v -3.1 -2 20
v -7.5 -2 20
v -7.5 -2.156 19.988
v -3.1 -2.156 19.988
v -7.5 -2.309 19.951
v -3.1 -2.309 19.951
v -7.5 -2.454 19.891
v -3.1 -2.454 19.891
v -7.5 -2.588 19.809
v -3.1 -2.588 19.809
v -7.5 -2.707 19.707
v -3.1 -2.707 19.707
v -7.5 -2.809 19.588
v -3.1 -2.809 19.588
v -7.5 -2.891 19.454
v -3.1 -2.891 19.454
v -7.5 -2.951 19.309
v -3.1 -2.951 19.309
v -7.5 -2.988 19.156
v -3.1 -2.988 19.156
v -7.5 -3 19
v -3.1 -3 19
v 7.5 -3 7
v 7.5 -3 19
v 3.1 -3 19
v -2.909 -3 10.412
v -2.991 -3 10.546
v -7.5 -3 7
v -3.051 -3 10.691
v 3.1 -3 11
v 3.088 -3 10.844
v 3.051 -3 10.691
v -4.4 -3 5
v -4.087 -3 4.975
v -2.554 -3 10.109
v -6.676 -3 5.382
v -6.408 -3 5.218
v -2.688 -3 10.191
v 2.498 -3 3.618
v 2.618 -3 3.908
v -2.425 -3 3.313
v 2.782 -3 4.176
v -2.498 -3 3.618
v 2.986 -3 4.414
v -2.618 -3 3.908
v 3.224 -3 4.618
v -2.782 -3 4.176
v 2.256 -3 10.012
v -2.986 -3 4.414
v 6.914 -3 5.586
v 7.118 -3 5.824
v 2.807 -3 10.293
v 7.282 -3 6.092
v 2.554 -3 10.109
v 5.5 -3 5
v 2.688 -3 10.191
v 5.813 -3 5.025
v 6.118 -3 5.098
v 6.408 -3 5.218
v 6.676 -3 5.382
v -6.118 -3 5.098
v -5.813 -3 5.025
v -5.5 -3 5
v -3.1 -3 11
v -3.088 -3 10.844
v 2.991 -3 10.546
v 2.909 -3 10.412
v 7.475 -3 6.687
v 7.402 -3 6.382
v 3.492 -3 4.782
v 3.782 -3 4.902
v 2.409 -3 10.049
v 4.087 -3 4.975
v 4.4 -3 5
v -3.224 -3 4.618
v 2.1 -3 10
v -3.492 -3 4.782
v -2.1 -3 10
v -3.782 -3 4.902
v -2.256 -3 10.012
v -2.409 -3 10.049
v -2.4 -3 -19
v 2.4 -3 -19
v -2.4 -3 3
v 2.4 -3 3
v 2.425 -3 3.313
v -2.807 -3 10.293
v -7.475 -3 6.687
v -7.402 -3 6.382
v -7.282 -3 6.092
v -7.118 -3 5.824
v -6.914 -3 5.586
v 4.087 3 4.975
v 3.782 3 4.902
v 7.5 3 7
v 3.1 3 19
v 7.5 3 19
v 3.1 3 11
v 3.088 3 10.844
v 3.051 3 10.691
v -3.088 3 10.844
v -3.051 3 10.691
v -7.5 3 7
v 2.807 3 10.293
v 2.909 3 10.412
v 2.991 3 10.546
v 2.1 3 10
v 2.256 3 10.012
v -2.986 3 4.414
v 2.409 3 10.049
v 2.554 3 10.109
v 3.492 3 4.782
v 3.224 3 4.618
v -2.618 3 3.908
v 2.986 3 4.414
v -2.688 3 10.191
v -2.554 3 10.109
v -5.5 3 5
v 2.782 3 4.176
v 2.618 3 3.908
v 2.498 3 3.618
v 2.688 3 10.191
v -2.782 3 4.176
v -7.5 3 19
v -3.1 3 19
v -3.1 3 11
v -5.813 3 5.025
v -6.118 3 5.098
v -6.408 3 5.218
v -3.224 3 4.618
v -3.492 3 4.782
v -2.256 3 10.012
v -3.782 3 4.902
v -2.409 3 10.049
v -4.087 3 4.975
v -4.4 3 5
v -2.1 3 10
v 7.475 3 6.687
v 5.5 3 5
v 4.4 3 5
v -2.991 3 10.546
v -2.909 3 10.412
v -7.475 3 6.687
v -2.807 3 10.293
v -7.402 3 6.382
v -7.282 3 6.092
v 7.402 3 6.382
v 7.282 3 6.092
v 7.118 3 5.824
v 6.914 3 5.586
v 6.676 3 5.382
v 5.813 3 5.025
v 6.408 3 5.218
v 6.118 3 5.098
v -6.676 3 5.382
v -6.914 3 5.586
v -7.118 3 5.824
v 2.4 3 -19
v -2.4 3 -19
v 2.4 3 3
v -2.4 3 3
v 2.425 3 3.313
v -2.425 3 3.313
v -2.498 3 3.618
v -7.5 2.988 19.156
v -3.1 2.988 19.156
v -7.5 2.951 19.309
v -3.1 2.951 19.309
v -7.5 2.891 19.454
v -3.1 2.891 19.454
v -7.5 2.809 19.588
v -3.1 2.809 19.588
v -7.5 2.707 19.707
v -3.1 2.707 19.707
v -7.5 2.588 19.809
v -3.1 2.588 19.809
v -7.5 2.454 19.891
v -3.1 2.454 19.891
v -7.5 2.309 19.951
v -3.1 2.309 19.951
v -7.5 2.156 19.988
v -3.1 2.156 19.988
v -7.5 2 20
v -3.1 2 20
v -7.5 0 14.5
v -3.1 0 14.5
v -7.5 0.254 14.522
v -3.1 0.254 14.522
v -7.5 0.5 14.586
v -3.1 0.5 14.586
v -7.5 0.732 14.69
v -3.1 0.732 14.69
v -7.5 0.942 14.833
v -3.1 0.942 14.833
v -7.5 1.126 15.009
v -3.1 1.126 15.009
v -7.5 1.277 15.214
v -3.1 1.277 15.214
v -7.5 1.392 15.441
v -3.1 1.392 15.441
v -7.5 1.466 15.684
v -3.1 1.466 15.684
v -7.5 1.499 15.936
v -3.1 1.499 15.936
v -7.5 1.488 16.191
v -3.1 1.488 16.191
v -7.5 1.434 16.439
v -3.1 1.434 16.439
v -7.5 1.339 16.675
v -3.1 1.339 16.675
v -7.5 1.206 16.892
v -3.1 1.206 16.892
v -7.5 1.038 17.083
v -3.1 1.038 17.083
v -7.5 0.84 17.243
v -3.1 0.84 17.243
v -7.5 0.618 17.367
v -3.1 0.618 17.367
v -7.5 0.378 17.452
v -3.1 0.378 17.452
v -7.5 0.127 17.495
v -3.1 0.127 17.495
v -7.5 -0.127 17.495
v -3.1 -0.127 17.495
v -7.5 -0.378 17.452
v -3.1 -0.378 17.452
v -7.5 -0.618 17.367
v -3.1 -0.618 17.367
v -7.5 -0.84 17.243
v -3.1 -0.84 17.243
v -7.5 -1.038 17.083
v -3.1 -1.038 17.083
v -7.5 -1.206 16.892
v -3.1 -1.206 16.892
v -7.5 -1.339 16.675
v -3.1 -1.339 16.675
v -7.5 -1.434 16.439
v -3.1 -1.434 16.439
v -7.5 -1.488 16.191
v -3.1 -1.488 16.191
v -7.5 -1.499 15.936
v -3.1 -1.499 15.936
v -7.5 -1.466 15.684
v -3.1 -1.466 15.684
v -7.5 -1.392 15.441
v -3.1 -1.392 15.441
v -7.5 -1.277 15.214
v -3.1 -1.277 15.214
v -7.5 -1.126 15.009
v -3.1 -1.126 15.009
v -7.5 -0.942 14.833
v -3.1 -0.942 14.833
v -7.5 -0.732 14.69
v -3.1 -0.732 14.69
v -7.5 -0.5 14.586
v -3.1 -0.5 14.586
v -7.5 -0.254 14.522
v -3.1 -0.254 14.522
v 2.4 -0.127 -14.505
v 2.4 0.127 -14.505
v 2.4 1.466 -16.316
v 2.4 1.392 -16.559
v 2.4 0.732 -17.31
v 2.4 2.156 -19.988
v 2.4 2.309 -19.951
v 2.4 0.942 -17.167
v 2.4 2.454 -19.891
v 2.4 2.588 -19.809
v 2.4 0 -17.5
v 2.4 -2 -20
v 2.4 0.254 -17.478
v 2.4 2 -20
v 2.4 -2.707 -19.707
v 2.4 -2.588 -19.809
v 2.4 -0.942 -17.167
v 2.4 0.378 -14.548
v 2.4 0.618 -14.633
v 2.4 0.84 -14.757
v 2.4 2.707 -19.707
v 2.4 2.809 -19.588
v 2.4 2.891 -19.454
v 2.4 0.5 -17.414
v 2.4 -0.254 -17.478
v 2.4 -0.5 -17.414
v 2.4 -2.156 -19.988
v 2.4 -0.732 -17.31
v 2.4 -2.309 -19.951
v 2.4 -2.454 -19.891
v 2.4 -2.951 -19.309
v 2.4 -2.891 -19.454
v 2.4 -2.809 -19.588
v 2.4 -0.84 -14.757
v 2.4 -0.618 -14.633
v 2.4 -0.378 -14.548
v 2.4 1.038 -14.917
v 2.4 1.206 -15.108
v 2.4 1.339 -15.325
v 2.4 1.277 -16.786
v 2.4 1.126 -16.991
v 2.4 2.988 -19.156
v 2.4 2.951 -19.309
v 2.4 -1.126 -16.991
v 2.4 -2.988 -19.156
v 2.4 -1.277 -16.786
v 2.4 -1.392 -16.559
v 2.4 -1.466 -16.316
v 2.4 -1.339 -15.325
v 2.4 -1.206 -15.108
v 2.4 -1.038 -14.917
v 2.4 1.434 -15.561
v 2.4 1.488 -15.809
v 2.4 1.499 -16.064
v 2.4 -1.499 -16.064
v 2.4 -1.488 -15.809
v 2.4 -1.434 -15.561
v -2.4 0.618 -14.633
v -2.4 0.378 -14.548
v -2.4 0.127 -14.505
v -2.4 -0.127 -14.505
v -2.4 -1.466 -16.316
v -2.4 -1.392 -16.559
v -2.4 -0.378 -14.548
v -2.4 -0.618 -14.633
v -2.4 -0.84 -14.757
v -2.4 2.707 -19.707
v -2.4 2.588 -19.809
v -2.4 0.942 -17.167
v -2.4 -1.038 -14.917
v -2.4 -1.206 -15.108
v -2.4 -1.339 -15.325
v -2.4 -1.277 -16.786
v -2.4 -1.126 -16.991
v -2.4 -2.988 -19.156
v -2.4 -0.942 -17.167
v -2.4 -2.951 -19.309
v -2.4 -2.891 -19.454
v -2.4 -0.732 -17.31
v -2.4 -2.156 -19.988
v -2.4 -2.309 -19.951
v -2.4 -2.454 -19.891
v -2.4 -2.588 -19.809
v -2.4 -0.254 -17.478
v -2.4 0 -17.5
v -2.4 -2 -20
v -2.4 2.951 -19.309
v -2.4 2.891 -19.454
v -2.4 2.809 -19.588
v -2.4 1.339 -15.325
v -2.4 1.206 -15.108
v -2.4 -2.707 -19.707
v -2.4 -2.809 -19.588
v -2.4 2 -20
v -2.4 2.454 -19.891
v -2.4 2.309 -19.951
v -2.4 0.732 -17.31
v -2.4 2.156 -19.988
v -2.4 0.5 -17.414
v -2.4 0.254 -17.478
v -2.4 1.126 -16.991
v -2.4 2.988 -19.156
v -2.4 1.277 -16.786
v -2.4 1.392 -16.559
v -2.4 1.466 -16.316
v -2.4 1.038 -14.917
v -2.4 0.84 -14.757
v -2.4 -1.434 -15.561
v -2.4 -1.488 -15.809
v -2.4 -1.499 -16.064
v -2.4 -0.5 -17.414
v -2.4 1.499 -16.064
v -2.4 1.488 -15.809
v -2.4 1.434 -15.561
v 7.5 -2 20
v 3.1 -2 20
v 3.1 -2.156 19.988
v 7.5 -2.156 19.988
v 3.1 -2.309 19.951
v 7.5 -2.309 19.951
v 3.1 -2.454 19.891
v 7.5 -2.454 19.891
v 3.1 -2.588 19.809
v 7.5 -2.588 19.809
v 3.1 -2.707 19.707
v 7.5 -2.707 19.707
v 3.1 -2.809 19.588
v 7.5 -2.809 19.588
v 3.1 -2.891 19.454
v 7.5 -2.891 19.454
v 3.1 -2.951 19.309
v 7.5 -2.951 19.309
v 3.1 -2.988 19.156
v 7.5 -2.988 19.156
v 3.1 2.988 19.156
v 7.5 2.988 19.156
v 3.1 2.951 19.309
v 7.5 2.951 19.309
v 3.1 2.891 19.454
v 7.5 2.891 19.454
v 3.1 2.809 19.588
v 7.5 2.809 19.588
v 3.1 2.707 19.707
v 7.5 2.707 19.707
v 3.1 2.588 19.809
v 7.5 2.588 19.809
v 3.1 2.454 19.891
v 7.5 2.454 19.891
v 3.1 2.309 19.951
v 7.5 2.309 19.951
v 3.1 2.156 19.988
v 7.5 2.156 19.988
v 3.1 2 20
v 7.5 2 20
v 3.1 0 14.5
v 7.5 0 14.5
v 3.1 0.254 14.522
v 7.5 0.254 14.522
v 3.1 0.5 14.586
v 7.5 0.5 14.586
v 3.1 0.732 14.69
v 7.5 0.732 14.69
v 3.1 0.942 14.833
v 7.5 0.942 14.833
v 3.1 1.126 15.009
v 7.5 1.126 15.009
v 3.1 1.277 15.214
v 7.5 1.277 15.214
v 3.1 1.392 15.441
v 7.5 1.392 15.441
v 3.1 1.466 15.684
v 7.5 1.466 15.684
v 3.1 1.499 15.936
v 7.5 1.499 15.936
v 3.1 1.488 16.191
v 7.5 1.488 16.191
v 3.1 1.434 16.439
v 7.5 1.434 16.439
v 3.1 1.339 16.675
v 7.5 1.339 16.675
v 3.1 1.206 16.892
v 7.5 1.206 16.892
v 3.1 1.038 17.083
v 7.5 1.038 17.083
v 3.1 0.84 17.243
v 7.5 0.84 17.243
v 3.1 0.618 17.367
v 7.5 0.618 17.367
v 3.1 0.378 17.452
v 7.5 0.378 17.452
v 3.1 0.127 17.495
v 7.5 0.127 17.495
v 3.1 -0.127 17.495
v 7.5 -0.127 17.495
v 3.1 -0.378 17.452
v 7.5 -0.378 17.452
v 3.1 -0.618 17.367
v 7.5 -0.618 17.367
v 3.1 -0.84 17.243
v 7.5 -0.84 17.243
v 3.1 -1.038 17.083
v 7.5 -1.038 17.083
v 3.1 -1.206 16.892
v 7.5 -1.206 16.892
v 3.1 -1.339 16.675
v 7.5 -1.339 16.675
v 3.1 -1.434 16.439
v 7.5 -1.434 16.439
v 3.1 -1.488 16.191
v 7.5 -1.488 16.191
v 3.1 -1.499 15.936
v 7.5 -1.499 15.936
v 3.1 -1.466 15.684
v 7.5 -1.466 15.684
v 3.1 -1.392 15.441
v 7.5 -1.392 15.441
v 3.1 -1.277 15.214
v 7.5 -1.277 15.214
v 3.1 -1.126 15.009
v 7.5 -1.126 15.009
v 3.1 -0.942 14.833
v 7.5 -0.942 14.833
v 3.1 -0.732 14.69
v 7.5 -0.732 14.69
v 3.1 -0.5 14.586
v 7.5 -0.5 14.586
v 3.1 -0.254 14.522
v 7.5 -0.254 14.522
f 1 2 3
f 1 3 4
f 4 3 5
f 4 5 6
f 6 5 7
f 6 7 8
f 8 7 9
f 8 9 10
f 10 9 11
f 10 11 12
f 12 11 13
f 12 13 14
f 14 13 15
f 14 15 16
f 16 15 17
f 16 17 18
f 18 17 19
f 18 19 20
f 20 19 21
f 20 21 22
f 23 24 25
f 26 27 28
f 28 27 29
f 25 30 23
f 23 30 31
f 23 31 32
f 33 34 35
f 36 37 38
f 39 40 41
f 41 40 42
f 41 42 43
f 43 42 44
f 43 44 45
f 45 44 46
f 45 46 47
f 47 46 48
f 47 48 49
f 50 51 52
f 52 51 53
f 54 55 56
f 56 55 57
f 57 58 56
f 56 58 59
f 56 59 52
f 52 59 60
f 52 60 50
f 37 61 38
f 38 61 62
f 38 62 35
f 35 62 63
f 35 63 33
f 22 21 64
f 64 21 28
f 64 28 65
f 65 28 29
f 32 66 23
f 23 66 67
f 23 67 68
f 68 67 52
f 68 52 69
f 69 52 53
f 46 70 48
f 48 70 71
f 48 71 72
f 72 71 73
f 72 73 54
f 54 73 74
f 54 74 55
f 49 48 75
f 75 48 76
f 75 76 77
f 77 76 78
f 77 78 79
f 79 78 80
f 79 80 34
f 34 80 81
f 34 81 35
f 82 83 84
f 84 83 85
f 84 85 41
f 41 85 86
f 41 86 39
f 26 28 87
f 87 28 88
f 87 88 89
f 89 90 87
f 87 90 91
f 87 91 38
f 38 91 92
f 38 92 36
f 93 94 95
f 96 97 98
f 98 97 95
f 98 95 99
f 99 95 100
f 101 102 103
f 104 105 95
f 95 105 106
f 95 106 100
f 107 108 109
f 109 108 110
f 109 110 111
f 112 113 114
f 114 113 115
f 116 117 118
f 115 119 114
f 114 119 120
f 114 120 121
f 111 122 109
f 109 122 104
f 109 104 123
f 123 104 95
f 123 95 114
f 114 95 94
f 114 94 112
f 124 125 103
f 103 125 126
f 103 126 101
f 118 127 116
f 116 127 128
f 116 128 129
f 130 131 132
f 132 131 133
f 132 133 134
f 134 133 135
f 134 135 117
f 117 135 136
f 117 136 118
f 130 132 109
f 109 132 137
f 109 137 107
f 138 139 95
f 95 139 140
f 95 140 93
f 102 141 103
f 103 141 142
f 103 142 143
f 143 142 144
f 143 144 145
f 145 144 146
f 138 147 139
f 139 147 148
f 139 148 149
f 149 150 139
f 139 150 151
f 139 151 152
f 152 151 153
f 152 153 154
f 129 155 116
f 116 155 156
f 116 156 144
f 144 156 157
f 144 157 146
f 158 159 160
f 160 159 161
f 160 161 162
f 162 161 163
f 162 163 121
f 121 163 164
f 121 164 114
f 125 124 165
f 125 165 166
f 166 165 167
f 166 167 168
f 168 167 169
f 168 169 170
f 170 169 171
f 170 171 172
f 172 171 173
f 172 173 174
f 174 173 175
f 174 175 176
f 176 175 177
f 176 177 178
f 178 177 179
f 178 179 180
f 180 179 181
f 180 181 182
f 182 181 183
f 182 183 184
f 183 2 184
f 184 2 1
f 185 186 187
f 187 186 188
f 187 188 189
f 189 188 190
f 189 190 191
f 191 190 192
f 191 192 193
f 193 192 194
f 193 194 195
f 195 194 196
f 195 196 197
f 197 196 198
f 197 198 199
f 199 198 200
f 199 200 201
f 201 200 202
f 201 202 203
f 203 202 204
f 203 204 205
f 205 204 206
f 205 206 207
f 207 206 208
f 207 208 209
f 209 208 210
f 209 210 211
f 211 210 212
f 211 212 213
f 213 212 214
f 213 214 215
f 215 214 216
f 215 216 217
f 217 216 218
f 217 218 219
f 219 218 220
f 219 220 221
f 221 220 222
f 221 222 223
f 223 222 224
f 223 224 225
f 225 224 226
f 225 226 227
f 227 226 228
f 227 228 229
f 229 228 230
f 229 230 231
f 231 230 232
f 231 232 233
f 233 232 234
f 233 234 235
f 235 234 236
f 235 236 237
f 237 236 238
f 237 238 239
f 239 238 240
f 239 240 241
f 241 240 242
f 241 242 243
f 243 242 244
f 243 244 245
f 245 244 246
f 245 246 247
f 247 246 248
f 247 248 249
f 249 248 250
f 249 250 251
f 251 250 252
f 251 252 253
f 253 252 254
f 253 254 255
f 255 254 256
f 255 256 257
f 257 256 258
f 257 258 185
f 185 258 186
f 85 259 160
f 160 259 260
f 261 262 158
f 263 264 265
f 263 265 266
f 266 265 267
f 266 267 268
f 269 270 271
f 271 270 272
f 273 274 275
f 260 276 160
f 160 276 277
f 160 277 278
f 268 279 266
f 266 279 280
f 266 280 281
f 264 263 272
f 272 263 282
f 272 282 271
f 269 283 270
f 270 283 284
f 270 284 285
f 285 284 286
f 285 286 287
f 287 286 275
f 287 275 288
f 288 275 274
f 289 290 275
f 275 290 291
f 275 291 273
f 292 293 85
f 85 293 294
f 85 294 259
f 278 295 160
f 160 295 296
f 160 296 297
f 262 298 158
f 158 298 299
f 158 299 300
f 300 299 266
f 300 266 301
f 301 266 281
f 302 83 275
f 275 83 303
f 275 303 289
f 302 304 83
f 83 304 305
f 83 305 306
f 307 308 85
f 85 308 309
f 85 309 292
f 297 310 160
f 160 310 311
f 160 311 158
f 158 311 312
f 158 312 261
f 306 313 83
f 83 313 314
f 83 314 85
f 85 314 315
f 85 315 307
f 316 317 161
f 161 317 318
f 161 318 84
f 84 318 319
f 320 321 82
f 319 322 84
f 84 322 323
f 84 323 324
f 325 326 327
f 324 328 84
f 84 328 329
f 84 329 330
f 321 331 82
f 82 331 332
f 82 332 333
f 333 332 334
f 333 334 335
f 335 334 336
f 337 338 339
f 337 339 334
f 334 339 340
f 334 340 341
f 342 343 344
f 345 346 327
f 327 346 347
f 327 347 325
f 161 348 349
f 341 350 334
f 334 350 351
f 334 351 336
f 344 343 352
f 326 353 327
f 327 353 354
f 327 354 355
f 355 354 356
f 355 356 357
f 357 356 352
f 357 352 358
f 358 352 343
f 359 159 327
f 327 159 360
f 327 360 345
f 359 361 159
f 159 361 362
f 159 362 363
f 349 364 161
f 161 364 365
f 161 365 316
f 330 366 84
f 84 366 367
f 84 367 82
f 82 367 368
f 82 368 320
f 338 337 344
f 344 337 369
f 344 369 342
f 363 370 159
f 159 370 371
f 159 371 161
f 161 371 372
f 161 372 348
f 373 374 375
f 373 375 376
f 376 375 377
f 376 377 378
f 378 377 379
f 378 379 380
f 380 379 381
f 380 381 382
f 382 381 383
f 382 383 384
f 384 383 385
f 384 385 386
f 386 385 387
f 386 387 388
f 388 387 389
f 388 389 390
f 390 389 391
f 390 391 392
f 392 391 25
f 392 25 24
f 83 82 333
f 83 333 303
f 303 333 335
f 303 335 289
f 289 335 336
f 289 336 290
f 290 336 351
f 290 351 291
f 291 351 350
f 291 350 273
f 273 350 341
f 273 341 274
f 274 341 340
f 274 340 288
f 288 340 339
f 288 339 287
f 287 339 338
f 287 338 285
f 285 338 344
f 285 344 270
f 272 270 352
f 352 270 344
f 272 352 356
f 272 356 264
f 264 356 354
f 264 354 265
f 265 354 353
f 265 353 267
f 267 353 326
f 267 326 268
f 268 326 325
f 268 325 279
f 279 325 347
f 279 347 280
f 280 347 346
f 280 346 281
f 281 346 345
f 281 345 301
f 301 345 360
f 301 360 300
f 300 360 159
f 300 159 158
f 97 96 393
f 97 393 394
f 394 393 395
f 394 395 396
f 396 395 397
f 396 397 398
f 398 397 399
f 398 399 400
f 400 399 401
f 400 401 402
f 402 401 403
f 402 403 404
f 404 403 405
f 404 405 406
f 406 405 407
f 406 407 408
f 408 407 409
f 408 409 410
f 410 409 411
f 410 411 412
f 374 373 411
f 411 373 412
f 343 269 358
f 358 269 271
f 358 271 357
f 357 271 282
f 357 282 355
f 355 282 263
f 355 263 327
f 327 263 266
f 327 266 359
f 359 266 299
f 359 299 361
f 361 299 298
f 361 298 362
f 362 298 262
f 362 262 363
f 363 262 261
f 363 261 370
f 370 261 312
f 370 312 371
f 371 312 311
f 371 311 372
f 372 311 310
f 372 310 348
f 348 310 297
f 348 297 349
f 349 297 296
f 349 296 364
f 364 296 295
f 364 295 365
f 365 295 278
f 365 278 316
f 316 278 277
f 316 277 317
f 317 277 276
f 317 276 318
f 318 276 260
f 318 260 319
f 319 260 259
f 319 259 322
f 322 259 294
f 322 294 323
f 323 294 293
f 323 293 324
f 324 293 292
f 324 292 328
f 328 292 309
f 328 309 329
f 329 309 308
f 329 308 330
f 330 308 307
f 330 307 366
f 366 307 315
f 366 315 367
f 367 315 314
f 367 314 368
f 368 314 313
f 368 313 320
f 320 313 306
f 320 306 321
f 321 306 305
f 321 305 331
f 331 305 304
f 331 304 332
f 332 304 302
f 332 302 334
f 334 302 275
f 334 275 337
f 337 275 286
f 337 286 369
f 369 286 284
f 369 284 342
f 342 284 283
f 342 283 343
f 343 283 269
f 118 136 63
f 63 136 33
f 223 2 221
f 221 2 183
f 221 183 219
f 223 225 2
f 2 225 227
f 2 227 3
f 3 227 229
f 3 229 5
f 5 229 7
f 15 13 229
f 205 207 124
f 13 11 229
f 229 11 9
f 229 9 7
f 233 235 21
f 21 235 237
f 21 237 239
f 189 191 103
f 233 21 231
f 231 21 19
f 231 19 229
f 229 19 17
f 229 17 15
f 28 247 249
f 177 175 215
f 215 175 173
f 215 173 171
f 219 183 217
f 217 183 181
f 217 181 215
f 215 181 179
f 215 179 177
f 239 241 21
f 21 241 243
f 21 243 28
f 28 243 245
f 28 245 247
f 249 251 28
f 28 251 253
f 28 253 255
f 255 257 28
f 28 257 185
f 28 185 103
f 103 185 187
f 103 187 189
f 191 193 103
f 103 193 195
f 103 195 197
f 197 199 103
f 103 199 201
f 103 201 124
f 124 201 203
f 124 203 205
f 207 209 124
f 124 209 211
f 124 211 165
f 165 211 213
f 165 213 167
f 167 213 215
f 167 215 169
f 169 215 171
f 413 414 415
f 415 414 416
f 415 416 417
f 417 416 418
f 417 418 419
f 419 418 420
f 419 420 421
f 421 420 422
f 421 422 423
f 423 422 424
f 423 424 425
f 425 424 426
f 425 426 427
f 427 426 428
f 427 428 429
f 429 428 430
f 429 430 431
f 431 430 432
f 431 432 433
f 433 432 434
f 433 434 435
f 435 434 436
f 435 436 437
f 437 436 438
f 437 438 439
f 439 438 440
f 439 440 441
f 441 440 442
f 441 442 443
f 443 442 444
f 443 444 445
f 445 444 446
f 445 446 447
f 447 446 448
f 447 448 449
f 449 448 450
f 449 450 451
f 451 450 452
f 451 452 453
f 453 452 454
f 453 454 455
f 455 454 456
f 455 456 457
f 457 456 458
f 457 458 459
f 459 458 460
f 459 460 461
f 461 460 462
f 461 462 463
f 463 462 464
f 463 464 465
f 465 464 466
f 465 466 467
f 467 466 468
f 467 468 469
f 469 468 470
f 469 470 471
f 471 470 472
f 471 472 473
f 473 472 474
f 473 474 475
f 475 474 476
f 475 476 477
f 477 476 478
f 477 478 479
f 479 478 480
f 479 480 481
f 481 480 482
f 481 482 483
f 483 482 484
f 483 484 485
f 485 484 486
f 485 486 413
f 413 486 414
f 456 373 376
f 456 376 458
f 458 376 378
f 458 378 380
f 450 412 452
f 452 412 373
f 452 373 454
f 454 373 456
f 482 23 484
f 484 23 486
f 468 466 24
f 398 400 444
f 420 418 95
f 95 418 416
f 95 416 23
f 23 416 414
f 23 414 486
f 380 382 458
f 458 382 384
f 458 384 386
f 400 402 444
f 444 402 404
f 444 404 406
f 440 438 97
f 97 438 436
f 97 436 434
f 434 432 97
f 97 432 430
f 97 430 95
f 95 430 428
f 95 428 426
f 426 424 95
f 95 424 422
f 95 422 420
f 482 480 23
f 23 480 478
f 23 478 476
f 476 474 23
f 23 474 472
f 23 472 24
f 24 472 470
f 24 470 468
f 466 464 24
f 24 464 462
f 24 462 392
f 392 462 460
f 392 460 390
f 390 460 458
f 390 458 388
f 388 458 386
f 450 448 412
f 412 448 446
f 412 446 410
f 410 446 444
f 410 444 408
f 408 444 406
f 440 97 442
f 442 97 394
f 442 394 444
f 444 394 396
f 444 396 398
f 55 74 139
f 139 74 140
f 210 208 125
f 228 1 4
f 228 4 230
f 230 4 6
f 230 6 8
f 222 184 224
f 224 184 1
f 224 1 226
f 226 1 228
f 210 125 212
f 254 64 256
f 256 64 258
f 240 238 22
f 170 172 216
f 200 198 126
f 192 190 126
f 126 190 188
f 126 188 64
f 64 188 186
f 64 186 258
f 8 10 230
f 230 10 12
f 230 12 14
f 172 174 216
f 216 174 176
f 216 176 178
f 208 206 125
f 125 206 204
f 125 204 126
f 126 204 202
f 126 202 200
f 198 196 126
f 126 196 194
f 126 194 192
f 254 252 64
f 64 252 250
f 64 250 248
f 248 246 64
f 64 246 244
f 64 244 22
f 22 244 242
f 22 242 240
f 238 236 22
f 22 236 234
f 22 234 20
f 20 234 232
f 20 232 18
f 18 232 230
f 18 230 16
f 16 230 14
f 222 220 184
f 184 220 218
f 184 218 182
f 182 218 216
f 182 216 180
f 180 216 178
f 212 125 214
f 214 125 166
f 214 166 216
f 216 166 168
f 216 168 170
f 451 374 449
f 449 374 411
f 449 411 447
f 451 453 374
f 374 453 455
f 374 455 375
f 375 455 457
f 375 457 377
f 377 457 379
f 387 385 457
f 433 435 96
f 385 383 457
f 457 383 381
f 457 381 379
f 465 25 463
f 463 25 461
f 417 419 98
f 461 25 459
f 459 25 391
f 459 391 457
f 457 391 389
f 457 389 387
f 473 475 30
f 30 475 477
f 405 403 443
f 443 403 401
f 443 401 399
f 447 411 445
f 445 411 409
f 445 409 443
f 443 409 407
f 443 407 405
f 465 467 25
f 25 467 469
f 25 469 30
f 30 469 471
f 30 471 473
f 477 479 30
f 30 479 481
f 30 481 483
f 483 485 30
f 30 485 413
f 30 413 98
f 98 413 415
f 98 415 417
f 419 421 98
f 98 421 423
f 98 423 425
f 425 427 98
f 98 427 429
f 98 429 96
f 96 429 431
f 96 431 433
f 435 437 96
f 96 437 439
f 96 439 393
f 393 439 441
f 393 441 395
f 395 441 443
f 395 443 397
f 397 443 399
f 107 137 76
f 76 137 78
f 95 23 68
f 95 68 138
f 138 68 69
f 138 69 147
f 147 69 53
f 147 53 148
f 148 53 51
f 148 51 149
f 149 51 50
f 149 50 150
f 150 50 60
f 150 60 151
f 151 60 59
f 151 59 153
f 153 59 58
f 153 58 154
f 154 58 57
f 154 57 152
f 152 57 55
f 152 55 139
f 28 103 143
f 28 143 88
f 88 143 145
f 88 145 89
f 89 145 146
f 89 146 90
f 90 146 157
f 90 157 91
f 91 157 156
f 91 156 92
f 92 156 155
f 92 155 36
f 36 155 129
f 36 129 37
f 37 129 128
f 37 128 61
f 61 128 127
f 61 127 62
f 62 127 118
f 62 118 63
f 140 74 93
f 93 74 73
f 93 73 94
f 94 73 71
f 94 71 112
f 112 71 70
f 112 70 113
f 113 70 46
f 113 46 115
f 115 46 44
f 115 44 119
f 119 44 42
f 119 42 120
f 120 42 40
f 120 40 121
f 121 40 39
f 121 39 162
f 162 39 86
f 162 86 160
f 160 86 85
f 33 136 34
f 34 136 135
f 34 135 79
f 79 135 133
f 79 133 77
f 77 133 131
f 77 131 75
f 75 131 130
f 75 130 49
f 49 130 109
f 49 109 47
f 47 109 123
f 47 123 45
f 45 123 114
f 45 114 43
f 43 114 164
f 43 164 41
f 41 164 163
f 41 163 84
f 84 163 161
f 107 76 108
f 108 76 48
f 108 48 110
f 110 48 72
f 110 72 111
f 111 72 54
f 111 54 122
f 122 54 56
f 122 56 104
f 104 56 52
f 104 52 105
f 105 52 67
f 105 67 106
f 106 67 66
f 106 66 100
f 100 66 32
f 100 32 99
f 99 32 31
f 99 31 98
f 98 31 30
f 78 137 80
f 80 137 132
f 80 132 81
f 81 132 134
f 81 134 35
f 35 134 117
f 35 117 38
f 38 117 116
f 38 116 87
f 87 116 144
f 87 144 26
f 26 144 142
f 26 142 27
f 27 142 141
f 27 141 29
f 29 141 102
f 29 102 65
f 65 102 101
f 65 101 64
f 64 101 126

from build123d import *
from build123d.topology import SkipClean

# Parameters (mm, degrees)
SALIENTE_EXTRUIR1_DEPTH    = 2.4
CORTAR_EXTRUIR1_DEPTH      = 21.365657367
CORTAR_EXTRUIR1_DEPTH_BACK = 21.365657367
CROQUIS2_R                 = 1.5
CROQUIS3_R                 = 1.5
SALIENTE_EXTRUIR2_DEPTH    = 7.5
CORTAR_EXTRUIR2_DEPTH      = 3.1
REDONDEO1_R                = 2
REDONDEO2_R                = 1


with BuildPart() as part:
    # Croquis1 → Saliente-Extruir1 (new, symmetric)
    with BuildSketch(Plane(origin=(0, 0, 0), x_dir=(0, 0, -1), z_dir=(1, 0, 0))):
        with BuildLine():
            Line((-19, 3), (19, 3))
            ThreePointArc((19, 3), (19.707106781, 2.707106781), (20, 2))
            Line((20, 2), (20, -2))
            ThreePointArc((20, -2), (19.707106781, -2.707106781), (19, -3))
            Line((19, -3), (-19, -3))
            ThreePointArc((-19, -3), (-19.707106781, -2.707106781), (-20, -2))
            Line((-20, -2), (-20, 2))
            ThreePointArc((-20, 2), (-19.707106781, 2.707106781), (-19, 3))
        make_face()
    extrude(amount=SALIENTE_EXTRUIR1_DEPTH, both=True)

    # Croquis2 → Cortar-Extruir1 (cut, two sides: drawn at the far end of the back side and taken through both)
    with BuildSketch(Plane(origin=(0, 0, 0), x_dir=(0, 0, -1), z_dir=(1, 0, 0)).offset(-CORTAR_EXTRUIR1_DEPTH_BACK)):
        with Locations((-16, 0)):
            Circle(CROQUIS2_R)
        with Locations((16, 0)):
            Circle(CROQUIS2_R)
    extrude(amount=CORTAR_EXTRUIR1_DEPTH + CORTAR_EXTRUIR1_DEPTH_BACK, mode=Mode.SUBTRACT)

    # Croquis3 → Saliente-Extruir2 (add, symmetric)
    with SkipClean():  # the faces are left unmerged after this step: merging them gives an invalid solid
        with BuildSketch(Plane(origin=(0, 0, 0), x_dir=(0, 0, -1), z_dir=(1, 0, 0))):
            with BuildLine():
                Line((-20, 2), (-20, -2))
                ThreePointArc((-20, -2), (-19.707106781, -2.707106781), (-19, -3))
                Line((-19, -3), (-5, -3))
                Line((-5, -3), (-5, 3))
                Line((-5, 3), (-19, 3))
                ThreePointArc((-19, 3), (-19.707106781, 2.707106781), (-20, 2))
            make_face()
            with Locations((-16, 0)):
                Circle(CROQUIS3_R, mode=Mode.SUBTRACT)
        extrude(amount=SALIENTE_EXTRUIR2_DEPTH, both=True)
    add(part.part.scale(1), mode=Mode.REPLACE)  # the faces are merged on a copy

    # Croquis4 → Cortar-Extruir2 (cut, symmetric)
    with BuildSketch(Plane(origin=(0, 0, 0), x_dir=(0, 0, -1), z_dir=(1, 0, 0))):
        with BuildLine():
            Line((-19, 3), (-10, 3))
            Line((-10, 3), (-10, -3))
            Line((-10, -3), (-19, -3))
            ThreePointArc((-19, -3), (-19.707106781, -2.707106781), (-20, -2))
            Line((-20, -2), (-20, 2))
            ThreePointArc((-20, 2), (-19.707106781, 2.707106781), (-19, 3))
        make_face()
    extrude(amount=CORTAR_EXTRUIR2_DEPTH, both=True, mode=Mode.SUBTRACT)

    # Redondeo1
    redondeo1_edges = [part.edges().sort_by_distance(p)[0] for p in [
        (-2.4, 0, 5),
        (2.4, 0, 5),
        (-7.5, 0, 5),
        (7.5, 0, 5),
    ]]
    fillet(redondeo1_edges, radius=REDONDEO1_R)

    # Redondeo2
    redondeo2_edges = [part.edges().sort_by_distance(p)[0] for p in [
        (3.1, 0, 10),
        (-3.1, 0, 10),
    ]]
    fillet(redondeo2_edges, radius=REDONDEO2_R)


solid = part.part
